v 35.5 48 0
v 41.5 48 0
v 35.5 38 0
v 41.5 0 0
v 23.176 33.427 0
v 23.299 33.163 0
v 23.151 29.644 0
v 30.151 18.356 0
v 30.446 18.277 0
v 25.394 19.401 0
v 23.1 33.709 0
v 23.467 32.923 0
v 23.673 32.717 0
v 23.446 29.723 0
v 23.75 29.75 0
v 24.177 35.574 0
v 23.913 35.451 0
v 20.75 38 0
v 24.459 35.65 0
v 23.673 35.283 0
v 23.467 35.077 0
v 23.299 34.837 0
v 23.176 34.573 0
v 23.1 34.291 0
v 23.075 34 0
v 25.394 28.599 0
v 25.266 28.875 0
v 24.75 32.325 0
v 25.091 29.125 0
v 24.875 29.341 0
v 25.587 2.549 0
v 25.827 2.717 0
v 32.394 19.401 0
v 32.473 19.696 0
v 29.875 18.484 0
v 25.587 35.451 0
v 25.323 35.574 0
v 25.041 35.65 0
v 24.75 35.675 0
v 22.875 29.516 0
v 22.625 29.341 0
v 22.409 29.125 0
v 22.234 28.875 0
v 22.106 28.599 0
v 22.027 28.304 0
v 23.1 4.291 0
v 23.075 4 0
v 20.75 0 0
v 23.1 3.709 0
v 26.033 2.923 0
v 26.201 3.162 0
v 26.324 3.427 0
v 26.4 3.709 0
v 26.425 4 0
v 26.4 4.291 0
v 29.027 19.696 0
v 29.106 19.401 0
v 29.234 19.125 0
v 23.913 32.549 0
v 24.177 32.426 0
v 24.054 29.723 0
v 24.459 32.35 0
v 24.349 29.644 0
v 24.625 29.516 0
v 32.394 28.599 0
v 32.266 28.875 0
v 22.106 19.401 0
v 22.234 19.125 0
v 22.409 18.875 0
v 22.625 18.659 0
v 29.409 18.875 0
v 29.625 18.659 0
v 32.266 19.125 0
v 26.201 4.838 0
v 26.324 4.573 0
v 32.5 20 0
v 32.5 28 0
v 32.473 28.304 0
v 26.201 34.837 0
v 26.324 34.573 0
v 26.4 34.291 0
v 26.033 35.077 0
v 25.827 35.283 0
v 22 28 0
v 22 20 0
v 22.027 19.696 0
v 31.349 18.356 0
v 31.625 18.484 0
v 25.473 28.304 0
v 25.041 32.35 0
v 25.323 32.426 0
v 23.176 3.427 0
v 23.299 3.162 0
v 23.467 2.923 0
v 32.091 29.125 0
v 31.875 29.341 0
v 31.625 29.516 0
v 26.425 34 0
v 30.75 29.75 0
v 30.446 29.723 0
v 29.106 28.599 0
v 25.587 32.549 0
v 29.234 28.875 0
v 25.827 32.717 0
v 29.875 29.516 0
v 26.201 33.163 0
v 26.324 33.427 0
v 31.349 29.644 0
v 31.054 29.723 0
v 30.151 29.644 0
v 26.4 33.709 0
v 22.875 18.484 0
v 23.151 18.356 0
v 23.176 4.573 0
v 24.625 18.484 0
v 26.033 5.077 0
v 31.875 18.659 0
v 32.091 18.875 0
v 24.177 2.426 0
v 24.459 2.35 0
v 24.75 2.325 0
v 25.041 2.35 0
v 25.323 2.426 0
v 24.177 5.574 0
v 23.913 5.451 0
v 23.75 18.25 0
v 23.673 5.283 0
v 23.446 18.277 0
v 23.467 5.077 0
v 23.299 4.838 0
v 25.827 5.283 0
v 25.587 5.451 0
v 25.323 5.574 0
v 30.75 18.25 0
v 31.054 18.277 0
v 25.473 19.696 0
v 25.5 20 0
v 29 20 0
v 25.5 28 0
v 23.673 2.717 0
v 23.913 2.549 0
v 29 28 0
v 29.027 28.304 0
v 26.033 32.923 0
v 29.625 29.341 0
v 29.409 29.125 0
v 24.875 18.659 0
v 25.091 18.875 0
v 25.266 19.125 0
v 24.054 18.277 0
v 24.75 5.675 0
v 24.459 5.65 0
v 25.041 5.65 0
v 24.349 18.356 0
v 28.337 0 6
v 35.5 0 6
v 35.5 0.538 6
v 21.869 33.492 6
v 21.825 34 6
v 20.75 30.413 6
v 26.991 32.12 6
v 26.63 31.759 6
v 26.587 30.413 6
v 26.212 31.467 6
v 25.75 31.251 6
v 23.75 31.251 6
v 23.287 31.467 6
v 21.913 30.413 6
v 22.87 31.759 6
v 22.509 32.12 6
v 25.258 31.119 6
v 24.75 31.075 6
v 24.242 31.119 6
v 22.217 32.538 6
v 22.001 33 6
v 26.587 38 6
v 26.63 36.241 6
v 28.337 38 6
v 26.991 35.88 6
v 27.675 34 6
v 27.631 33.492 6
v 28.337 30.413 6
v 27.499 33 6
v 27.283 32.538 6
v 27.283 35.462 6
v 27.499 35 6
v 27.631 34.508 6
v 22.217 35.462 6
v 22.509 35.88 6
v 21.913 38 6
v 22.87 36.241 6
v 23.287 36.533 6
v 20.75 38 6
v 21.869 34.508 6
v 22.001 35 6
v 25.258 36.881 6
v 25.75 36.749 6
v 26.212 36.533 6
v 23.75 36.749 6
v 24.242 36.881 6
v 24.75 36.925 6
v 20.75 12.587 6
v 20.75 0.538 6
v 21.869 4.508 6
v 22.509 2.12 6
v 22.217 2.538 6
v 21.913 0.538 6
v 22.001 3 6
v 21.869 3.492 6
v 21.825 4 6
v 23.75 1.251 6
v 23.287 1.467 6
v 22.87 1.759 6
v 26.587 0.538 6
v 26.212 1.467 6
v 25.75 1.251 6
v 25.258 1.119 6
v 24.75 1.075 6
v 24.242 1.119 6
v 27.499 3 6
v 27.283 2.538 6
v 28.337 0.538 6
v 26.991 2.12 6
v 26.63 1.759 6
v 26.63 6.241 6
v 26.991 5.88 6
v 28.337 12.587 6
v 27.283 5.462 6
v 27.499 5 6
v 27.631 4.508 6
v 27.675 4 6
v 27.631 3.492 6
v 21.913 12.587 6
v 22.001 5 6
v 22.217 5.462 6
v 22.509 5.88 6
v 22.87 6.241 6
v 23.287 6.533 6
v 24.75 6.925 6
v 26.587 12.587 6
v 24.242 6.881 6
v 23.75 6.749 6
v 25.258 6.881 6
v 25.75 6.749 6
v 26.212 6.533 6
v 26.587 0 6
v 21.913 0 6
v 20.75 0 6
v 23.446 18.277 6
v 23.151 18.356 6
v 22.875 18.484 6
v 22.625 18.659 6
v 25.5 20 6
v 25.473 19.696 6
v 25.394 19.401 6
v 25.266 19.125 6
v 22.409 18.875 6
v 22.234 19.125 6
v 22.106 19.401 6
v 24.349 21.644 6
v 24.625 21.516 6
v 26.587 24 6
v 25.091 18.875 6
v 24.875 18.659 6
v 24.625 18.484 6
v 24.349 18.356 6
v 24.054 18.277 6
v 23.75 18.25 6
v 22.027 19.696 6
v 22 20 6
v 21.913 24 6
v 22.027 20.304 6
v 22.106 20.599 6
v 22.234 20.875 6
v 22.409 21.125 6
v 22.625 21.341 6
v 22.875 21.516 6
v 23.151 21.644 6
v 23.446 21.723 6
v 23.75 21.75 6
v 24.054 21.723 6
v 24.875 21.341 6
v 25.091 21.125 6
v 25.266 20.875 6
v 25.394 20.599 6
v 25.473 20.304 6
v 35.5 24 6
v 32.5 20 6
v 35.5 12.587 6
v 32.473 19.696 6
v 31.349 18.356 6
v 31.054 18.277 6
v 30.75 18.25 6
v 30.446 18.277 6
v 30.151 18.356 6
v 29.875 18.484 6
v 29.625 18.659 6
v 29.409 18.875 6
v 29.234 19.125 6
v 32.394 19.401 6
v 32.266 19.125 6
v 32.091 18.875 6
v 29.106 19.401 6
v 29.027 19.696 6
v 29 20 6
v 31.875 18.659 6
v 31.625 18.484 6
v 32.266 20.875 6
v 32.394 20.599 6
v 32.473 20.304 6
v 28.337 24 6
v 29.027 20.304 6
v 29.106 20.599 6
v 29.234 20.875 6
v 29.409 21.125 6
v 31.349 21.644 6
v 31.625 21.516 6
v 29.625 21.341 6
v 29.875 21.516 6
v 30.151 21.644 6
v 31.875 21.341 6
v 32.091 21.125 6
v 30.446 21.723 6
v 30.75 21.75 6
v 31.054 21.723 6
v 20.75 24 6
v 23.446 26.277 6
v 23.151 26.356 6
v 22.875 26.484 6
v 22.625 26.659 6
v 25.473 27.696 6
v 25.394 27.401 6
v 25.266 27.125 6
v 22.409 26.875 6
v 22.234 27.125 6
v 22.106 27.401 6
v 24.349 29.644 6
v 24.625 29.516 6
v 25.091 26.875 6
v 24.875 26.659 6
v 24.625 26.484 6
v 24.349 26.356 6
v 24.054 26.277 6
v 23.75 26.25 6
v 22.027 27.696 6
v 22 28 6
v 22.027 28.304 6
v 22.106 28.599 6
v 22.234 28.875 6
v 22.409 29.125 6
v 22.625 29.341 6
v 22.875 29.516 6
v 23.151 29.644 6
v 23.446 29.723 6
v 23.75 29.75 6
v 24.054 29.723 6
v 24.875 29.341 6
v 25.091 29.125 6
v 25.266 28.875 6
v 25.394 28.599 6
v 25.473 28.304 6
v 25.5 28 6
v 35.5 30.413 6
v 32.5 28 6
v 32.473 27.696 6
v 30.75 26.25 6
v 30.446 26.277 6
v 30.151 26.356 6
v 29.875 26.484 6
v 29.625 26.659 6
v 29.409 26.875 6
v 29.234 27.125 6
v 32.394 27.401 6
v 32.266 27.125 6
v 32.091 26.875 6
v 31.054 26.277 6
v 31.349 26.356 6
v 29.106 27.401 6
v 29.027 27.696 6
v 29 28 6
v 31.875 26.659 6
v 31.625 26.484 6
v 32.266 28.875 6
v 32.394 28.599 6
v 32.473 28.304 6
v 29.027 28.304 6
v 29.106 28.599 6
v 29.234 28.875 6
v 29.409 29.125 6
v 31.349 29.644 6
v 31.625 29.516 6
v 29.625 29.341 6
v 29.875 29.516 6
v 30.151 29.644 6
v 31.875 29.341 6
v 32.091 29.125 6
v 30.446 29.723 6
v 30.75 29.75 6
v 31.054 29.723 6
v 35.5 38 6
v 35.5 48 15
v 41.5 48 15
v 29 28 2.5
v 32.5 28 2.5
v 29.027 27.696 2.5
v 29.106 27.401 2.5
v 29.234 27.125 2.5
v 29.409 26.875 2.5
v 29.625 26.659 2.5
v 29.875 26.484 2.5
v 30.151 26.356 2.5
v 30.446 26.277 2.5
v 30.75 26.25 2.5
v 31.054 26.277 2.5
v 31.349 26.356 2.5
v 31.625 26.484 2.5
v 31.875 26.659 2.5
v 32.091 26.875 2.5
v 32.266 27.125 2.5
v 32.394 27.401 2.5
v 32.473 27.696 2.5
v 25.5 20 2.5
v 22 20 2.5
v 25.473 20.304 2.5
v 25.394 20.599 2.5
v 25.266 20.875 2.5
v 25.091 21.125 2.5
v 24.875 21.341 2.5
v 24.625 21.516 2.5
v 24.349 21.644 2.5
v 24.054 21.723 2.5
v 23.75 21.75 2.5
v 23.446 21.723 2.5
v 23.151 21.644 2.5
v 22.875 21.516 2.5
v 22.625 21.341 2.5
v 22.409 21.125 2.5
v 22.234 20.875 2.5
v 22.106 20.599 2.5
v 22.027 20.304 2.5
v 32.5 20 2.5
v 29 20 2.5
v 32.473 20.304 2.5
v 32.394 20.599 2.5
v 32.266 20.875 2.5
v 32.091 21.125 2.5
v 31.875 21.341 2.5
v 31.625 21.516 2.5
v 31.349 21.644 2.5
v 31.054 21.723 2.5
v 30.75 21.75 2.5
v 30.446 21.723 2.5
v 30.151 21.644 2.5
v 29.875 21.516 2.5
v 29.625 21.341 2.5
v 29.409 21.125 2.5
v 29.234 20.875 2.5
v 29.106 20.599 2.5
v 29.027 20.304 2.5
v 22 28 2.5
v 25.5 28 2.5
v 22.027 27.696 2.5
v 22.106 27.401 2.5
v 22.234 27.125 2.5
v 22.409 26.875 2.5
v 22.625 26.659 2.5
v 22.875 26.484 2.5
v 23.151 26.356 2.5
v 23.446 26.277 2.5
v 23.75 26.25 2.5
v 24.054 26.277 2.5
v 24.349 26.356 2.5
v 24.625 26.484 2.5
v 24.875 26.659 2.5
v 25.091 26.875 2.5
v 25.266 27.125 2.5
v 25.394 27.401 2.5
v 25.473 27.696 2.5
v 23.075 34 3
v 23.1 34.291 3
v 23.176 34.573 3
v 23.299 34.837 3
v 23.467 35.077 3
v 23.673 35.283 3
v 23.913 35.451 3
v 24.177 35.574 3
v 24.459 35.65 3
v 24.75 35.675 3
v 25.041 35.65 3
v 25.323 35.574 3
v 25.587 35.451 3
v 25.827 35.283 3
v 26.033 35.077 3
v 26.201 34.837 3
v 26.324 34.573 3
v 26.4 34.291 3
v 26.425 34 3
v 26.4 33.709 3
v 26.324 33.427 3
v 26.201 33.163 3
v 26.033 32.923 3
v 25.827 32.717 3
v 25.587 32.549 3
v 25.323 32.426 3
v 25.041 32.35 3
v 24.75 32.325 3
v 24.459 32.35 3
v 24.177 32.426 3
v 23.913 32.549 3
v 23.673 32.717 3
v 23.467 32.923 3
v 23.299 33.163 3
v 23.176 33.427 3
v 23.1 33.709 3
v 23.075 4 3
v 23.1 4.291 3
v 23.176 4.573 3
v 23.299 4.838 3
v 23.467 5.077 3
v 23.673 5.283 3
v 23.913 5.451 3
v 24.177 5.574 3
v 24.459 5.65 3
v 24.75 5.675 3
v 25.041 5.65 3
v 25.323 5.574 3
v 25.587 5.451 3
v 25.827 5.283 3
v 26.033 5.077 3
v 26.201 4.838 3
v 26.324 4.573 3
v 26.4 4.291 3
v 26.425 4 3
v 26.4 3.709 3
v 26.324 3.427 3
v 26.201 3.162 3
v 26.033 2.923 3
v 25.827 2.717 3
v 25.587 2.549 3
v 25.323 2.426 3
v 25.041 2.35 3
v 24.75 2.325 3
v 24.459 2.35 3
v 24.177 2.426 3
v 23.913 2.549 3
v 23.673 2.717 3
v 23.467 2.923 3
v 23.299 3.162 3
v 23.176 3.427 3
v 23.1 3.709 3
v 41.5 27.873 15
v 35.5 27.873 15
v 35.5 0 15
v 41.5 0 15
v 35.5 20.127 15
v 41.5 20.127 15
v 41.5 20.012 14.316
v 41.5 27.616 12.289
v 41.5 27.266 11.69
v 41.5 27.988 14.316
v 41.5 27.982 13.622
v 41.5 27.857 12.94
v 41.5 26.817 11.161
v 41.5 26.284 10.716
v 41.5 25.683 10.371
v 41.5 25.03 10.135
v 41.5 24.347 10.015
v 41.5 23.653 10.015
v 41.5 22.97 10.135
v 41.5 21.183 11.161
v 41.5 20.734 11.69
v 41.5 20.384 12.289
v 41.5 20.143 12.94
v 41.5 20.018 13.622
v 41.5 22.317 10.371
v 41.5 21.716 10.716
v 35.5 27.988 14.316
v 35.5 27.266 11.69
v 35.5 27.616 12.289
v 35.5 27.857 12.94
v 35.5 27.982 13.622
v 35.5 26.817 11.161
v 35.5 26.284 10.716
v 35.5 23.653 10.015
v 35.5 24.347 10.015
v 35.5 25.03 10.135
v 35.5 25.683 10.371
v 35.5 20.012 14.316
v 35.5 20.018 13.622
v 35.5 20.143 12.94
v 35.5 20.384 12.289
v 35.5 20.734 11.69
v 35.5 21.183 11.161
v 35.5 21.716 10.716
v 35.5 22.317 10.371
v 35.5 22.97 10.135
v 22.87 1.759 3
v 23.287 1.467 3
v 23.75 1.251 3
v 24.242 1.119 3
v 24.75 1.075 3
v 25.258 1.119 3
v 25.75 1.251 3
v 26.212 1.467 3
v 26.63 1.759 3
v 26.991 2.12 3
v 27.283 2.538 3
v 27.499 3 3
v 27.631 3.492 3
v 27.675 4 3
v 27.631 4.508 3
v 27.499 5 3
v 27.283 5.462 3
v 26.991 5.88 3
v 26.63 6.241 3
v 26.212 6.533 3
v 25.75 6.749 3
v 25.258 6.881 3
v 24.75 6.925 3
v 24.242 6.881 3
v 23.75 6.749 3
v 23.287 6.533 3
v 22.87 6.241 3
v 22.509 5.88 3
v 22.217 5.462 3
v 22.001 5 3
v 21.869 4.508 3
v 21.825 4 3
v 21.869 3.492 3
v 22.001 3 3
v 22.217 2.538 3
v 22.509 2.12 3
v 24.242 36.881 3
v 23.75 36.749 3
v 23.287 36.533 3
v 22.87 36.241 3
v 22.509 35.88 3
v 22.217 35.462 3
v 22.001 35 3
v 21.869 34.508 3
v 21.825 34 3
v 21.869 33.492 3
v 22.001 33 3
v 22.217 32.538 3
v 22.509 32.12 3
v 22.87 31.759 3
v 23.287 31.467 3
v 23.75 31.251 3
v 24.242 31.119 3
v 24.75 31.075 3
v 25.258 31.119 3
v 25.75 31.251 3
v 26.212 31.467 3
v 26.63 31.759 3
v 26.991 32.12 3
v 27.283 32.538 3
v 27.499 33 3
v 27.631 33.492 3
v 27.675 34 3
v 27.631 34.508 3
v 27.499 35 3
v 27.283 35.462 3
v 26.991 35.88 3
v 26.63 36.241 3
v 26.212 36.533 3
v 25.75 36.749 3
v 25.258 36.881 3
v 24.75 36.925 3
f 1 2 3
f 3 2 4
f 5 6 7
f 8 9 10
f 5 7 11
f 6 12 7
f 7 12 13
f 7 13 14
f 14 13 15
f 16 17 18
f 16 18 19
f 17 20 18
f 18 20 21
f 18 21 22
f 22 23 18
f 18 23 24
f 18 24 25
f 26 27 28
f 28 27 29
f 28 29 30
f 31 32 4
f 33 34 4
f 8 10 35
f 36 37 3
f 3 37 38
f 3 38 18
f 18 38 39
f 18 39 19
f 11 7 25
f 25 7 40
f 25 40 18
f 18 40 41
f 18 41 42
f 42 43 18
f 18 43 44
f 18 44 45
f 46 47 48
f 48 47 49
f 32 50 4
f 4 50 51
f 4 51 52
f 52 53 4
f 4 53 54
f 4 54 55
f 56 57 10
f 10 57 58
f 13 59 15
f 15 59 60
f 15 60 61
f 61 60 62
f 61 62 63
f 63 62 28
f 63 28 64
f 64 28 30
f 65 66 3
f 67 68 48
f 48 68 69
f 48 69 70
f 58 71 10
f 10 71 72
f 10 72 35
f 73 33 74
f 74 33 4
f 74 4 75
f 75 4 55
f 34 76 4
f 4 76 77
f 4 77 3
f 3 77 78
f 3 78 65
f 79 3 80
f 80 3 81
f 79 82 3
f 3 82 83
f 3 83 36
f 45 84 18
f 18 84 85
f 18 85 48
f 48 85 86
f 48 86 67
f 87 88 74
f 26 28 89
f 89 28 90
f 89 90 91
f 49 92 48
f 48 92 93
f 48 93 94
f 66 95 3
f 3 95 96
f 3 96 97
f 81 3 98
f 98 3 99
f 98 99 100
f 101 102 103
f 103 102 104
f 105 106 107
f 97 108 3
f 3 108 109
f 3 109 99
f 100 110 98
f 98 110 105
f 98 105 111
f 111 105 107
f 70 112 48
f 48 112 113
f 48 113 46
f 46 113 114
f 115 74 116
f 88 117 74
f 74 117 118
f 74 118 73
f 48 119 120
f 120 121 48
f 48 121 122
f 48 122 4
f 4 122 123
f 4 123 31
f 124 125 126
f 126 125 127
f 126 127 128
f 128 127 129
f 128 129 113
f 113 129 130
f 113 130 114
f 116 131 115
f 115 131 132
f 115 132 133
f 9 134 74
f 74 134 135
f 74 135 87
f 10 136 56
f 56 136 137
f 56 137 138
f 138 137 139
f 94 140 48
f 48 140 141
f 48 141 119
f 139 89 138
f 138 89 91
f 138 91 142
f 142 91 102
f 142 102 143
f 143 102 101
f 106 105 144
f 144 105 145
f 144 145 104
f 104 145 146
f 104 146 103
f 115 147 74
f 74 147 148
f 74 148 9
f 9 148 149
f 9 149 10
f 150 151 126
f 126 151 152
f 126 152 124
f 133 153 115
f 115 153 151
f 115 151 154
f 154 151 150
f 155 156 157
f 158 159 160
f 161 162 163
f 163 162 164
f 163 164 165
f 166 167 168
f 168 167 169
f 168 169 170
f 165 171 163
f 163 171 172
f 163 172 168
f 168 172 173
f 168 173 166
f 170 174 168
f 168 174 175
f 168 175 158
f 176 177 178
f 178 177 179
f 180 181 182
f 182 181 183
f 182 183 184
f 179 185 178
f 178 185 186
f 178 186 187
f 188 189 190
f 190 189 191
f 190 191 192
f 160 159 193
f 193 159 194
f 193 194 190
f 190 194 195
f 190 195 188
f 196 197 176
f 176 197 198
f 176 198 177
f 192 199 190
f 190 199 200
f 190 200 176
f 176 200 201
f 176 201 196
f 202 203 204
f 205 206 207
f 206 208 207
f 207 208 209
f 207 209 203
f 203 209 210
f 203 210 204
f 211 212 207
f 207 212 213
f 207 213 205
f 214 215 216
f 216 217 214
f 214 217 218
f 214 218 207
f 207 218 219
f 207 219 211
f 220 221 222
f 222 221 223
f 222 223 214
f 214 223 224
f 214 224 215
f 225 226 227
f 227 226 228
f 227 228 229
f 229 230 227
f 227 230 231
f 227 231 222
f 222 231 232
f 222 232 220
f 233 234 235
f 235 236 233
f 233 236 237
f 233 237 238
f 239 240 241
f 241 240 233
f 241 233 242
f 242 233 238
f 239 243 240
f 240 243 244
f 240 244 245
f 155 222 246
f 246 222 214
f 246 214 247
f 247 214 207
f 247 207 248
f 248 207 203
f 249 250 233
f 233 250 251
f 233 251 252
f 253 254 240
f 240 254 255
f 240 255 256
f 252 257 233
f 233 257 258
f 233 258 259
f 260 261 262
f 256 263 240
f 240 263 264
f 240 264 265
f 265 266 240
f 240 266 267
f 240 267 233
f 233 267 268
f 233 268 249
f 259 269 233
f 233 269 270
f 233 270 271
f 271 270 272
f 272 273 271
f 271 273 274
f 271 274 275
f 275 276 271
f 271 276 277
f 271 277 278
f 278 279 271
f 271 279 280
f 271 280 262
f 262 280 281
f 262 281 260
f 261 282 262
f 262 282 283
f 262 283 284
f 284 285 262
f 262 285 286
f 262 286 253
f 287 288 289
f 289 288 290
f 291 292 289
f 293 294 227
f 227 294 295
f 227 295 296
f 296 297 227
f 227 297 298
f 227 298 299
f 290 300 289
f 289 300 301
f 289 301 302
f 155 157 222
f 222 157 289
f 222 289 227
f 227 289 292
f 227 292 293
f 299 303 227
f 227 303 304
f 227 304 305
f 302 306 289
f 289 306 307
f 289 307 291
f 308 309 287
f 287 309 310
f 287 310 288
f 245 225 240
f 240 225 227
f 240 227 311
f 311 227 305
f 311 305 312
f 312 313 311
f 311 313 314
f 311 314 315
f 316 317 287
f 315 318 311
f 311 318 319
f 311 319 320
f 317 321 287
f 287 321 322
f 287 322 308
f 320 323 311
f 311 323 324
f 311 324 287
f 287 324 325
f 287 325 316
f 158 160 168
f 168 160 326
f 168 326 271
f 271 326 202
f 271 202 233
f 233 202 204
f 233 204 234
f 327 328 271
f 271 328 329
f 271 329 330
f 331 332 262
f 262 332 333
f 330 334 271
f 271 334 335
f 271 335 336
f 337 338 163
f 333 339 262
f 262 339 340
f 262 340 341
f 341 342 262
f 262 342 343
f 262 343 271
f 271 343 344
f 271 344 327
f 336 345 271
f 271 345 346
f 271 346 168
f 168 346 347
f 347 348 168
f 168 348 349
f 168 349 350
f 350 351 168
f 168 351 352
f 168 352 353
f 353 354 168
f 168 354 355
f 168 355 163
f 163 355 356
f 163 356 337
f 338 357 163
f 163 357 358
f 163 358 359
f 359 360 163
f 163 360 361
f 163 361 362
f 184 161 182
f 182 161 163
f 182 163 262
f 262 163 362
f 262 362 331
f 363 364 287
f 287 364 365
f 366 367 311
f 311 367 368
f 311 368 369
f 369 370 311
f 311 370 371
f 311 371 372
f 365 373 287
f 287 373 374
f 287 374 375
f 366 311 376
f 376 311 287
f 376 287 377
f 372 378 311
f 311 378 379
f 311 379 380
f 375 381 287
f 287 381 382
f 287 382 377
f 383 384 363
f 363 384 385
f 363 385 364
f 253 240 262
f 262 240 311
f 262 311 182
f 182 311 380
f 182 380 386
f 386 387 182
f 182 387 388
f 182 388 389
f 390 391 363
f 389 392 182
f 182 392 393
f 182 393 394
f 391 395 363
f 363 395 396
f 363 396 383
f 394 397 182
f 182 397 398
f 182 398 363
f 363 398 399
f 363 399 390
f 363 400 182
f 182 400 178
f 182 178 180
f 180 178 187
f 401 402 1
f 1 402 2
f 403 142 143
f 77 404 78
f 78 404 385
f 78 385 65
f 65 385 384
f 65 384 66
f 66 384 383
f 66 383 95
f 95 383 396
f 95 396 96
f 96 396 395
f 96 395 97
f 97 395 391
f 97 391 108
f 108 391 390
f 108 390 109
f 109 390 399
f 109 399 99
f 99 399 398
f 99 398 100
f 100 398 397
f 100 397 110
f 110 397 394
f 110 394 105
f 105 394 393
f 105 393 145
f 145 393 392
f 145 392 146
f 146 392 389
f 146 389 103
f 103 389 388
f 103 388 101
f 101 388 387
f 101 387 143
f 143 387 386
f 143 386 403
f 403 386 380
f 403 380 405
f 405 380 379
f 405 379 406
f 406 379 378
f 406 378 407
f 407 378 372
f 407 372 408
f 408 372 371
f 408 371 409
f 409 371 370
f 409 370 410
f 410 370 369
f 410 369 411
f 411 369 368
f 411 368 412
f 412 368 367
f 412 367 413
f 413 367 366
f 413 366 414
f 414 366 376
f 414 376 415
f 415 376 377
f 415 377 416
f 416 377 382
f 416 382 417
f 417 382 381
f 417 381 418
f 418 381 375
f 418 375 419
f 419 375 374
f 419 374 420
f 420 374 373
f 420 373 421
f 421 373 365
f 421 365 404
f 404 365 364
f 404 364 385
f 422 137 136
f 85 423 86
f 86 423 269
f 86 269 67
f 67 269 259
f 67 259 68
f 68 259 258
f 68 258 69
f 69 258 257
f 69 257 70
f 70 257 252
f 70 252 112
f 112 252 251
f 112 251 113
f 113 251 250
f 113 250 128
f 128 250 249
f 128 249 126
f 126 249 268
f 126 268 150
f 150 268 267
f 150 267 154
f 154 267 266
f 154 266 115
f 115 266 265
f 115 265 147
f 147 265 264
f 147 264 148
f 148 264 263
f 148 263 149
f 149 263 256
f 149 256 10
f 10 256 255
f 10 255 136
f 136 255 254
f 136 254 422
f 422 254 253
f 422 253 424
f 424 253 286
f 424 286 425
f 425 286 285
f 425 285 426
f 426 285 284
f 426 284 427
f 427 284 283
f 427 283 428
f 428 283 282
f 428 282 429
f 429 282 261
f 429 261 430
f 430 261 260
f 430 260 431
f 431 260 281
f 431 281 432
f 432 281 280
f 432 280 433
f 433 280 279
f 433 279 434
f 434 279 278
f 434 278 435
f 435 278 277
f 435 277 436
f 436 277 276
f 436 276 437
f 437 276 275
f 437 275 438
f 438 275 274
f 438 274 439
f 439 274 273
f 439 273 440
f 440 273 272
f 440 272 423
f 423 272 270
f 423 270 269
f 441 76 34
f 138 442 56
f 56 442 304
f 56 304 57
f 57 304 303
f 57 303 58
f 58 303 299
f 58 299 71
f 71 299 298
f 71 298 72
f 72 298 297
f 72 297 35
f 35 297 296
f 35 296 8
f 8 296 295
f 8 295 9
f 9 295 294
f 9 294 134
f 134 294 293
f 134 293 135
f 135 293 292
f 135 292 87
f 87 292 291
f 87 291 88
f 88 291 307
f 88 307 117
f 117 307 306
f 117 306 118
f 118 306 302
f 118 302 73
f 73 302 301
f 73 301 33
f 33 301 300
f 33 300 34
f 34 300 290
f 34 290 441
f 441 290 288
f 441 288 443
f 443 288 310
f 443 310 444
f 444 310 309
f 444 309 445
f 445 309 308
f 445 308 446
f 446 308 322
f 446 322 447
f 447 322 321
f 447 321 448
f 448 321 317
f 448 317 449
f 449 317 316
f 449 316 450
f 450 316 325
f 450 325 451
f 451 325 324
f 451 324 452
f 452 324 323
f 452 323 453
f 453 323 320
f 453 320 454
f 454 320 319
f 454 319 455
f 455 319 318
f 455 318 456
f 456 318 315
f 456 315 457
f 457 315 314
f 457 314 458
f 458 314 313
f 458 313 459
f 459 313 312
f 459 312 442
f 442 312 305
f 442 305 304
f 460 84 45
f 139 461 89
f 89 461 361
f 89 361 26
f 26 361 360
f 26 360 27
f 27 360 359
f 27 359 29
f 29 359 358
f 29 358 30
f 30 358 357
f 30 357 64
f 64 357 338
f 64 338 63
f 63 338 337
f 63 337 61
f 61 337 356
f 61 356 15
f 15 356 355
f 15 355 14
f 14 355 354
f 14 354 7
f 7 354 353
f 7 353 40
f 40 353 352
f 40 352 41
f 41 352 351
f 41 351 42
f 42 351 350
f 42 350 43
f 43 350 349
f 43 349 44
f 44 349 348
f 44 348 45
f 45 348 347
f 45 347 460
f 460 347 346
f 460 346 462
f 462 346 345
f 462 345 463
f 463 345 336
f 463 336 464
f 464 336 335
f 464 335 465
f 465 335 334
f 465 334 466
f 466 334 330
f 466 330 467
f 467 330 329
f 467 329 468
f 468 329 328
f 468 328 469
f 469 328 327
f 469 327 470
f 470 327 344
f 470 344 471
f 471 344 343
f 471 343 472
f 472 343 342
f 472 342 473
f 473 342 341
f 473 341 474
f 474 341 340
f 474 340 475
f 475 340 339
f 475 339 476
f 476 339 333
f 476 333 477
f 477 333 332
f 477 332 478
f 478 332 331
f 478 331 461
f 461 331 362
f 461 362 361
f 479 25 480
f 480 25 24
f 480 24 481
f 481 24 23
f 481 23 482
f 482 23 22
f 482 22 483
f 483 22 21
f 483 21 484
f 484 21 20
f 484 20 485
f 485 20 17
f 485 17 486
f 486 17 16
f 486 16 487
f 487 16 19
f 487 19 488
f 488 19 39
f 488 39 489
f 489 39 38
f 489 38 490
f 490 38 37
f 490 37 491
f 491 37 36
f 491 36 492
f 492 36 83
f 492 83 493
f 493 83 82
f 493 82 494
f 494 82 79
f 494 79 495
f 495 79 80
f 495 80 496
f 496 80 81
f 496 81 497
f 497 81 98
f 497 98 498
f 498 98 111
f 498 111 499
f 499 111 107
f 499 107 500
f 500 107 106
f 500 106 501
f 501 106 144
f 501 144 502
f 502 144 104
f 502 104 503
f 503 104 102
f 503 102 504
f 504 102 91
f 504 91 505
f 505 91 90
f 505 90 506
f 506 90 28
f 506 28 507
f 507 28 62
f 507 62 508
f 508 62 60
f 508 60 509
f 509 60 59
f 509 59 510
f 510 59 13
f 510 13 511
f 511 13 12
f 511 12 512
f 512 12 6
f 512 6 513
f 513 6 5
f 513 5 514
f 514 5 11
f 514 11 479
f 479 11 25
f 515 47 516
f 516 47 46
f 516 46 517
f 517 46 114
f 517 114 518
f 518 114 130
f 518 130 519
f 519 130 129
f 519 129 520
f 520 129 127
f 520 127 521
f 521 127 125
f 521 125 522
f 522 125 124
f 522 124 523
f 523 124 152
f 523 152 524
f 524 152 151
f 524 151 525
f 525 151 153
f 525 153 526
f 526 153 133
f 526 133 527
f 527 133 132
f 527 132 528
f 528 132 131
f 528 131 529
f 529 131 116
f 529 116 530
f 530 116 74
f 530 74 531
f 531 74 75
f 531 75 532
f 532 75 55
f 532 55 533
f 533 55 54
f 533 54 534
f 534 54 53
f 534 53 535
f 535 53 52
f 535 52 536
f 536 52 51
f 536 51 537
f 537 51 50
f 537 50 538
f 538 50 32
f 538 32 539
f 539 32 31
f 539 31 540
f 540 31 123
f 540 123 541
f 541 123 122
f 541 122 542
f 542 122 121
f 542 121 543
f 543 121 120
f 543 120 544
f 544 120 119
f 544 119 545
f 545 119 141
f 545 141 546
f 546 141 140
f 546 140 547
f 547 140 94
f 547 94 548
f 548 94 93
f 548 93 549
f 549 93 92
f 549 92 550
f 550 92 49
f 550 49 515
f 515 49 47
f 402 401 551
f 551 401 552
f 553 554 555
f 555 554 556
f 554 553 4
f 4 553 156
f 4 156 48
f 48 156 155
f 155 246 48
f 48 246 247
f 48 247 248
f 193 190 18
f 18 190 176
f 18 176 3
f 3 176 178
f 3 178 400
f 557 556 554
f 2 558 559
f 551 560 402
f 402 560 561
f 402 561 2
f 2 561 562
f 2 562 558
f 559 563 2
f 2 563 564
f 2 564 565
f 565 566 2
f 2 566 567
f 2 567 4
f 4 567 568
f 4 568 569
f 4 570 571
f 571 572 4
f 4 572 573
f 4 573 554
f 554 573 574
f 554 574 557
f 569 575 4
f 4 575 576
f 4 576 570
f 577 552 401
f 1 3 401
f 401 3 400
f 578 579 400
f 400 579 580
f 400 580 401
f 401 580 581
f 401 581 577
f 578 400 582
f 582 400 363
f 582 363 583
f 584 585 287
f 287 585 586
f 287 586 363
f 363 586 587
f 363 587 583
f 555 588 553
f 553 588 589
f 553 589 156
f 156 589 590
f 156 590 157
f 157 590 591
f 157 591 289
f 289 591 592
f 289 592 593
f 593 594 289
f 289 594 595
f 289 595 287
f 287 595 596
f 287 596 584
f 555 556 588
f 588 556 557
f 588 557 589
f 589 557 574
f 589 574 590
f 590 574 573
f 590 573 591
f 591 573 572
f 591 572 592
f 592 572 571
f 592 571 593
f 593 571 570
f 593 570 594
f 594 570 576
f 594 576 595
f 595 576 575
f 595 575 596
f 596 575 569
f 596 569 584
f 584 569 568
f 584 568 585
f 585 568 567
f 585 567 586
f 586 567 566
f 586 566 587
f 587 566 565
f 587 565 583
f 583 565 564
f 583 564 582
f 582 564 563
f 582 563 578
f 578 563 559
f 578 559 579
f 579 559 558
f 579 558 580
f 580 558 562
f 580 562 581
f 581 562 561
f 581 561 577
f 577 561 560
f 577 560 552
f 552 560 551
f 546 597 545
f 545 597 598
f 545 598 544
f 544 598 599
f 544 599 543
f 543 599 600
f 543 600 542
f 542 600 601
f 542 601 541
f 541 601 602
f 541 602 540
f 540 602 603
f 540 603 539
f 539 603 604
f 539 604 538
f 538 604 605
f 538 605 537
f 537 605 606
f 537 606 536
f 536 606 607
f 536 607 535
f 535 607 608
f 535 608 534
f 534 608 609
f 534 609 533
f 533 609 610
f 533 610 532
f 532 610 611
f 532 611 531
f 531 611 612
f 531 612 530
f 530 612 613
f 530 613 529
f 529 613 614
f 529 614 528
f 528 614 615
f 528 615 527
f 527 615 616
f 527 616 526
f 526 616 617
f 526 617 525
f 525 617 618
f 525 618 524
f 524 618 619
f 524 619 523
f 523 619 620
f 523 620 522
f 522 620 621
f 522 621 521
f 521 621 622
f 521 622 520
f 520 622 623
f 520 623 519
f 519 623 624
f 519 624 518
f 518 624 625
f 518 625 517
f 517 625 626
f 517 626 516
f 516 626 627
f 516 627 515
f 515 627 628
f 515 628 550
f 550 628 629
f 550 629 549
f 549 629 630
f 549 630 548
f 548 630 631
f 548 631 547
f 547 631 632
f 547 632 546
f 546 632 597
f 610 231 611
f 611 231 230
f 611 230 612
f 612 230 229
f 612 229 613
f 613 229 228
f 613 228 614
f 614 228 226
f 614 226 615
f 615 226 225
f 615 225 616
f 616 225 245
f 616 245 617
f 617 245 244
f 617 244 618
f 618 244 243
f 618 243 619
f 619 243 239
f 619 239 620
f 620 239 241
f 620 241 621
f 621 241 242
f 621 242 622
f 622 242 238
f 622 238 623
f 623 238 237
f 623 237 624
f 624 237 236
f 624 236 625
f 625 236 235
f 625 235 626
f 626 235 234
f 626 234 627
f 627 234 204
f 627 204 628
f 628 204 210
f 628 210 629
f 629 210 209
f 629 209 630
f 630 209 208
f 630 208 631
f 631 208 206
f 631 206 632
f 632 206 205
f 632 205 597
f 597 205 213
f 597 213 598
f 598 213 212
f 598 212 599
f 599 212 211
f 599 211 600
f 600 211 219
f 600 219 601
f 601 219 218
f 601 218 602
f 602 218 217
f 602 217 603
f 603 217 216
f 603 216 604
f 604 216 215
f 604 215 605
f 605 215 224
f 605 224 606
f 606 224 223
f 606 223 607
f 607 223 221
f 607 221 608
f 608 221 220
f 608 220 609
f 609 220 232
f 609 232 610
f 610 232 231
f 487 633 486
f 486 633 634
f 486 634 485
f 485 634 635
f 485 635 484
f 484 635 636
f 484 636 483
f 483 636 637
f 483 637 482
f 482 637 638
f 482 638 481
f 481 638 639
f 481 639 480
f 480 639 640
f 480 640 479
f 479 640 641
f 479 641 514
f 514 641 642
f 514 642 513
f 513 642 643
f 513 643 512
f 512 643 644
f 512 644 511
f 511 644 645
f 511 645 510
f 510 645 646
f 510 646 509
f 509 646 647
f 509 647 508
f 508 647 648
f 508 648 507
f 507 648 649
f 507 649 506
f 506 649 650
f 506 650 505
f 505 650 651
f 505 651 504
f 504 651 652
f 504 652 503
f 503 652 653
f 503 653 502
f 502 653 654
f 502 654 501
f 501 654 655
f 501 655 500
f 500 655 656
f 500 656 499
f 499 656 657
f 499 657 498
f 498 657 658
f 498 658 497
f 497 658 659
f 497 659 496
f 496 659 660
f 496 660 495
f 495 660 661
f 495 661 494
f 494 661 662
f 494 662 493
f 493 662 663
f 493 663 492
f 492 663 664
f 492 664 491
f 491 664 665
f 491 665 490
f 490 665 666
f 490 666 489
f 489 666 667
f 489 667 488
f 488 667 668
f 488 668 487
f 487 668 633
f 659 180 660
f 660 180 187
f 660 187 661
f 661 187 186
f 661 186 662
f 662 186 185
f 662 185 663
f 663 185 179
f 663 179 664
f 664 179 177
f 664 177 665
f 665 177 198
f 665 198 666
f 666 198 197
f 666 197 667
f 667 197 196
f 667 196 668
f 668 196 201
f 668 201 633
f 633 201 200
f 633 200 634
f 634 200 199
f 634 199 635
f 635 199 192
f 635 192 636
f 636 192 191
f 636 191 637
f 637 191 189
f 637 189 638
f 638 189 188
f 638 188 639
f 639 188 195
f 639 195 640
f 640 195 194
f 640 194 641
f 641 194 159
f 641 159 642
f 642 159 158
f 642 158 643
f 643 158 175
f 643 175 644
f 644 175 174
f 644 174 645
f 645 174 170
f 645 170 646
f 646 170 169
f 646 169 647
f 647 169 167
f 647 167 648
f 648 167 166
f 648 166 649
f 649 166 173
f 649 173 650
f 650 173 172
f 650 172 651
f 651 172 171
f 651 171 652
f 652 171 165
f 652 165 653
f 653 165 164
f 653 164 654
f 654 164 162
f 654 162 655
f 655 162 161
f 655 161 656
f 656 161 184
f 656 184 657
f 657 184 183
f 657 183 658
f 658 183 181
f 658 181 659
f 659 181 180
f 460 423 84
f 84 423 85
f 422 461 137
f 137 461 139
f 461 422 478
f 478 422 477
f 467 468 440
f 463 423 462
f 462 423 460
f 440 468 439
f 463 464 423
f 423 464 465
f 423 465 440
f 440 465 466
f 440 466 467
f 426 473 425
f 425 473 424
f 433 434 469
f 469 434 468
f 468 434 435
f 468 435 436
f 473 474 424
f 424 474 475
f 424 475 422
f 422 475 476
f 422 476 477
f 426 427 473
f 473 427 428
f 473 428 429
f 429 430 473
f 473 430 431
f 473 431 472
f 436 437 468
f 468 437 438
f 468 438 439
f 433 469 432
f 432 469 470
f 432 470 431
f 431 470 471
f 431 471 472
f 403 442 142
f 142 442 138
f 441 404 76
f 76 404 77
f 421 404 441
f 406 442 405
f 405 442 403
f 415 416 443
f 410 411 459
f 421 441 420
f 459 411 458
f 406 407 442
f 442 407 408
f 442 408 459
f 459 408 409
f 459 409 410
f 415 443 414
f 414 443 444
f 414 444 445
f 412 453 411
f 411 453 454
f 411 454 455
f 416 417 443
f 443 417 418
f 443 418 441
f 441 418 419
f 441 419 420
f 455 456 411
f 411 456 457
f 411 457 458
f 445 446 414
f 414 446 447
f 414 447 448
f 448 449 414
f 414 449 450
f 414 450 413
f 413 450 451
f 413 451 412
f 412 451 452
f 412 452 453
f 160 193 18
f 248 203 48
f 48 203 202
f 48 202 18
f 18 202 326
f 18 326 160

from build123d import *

# Parameters (mm, degrees)
SKETCH1_W           = 20.75
SKETCH1_H           = 48
SKETCH1_R           = 1.675
BOSS_EXTRUDE1_DEPTH = 6
SKETCH2_W           = 15
SKETCH2_H           = 48
BOSS_EXTRUDE2_DEPTH = 6
SKETCH3_R           = 4
CUT_EXTRUDE1_DEPTH  = 6
SKETCH5_R           = 2.925
CUT_EXTRUDE2_DEPTH  = 3
SKETCH6_R           = 1.75
CUT_EXTRUDE3_DEPTH  = 10
SKETCH7_W           = 3.5
SKETCH7_H           = 8
CUT_EXTRUDE4_DEPTH  = 2.5
SKETCH8_W           = 14.75
SKETCH8_H           = 10
CUT_EXTRUDE5_DEPTH  = 16
SKETCH9_W           = 15
SKETCH9_H           = 48
CUT_EXTRUDE6_DEPTH  = 20.75


with BuildPart() as part:
    # Sketch1 → Boss-Extrude1 (new body)
    with BuildSketch(Plane.XY):
        with Locations((10.375, 24)):
            Rectangle(SKETCH1_W, SKETCH1_H)
        with Locations((16.75, 34)):
            Circle(SKETCH1_R, mode=Mode.SUBTRACT)
        with Locations((16.75, 4)):
            Circle(SKETCH1_R, mode=Mode.SUBTRACT)
    boss_extrude1 = extrude(amount=BOSS_EXTRUDE1_DEPTH)

    # Sketch2 → Boss-Extrude2 (add)
    with BuildSketch(Plane.ZY):
        with Locations((7.5, 24)):
            Rectangle(SKETCH2_W, SKETCH2_H)
    boss_extrude2 = extrude(amount=-BOSS_EXTRUDE2_DEPTH)

    # Sketch3 → Cut-Extrude1 (cut)
    with BuildSketch(Plane.ZY):
        with Locations((14, 24)):
            Circle(SKETCH3_R)
    cut_extrude1 = extrude(amount=-CUT_EXTRUDE1_DEPTH, mode=Mode.SUBTRACT)

    # Sketch5 → Cut-Extrude2 (cut)
    with BuildSketch(Plane.XY.offset(6)):
        with Locations((16.75, 34)):
            Circle(SKETCH5_R)
        with Locations((16.75, 4)):
            Circle(SKETCH5_R)
    cut_extrude2 = extrude(amount=-CUT_EXTRUDE2_DEPTH, mode=Mode.SUBTRACT)

    # Sketch6 → Cut-Extrude3 (cut)
    with BuildSketch(Plane.XY.offset(6)):
        with Locations((10.75, 28)):
            Circle(SKETCH6_R)
        with Locations((17.75, 28)):
            Circle(SKETCH6_R)
        with Locations(Location((10.75, 20, 0), (0, 0, 180))):
            Circle(SKETCH6_R)
        with Locations(Location((17.75, 20, 0), (0, 0, 180))):
            Circle(SKETCH6_R)
    cut_extrude3 = extrude(amount=-CUT_EXTRUDE3_DEPTH, mode=Mode.SUBTRACT)

    # Sketch7 → Cut-Extrude4 (cut)
    with BuildSketch(Plane(origin=(0, 0, 0), x_dir=(-1, 0, 0), z_dir=(0, 0, -1))):
        with Locations((-17.75, 24)):
            Rectangle(SKETCH7_W, SKETCH7_H)
        with Locations((-10.75, 24)):
            Rectangle(SKETCH7_W, SKETCH7_H)
    cut_extrude4 = extrude(amount=-CUT_EXTRUDE4_DEPTH, mode=Mode.SUBTRACT)

    # Sketch8 → Cut-Extrude5 (cut)
    with BuildSketch(Plane.XY.offset(6)):
        with Locations((13.375, 43)):
            Rectangle(SKETCH8_W, SKETCH8_H)
    cut_extrude5 = extrude(amount=-CUT_EXTRUDE5_DEPTH, mode=Mode.SUBTRACT)

    # Mirror3: Boss-Extrude1, Boss-Extrude2, Cut-Extrude1, Cut-Extrude2, Cut-Extrude3, Cut-Extrude4, Cut-Extrude5 across plane
    add(boss_extrude1.mirror(Plane(origin=(20.75, 0, 6), x_dir=(0, 0, 1), z_dir=(-1, 0, 0))))
    add(boss_extrude2.mirror(Plane(origin=(20.75, 0, 6), x_dir=(0, 0, 1), z_dir=(-1, 0, 0))))
    add(cut_extrude1.mirror(Plane(origin=(20.75, 0, 6), x_dir=(0, 0, 1), z_dir=(-1, 0, 0))), mode=Mode.SUBTRACT)
    add(cut_extrude2.mirror(Plane(origin=(20.75, 0, 6), x_dir=(0, 0, 1), z_dir=(-1, 0, 0))), mode=Mode.SUBTRACT)
    add(cut_extrude3.mirror(Plane(origin=(20.75, 0, 6), x_dir=(0, 0, 1), z_dir=(-1, 0, 0))), mode=Mode.SUBTRACT)
    add(cut_extrude4.mirror(Plane(origin=(20.75, 0, 6), x_dir=(0, 0, 1), z_dir=(-1, 0, 0))), mode=Mode.SUBTRACT)
    add(cut_extrude5.mirror(Plane(origin=(20.75, 0, 6), x_dir=(0, 0, 1), z_dir=(-1, 0, 0))), mode=Mode.SUBTRACT)

    # Sketch9 → Cut-Extrude6 (cut)
    with BuildSketch(Plane.ZY):
        with Locations((7.5, 24)):
            Rectangle(SKETCH9_W, SKETCH9_H)
    extrude(amount=-CUT_EXTRUDE6_DEPTH, mode=Mode.SUBTRACT)


solid = part.part
